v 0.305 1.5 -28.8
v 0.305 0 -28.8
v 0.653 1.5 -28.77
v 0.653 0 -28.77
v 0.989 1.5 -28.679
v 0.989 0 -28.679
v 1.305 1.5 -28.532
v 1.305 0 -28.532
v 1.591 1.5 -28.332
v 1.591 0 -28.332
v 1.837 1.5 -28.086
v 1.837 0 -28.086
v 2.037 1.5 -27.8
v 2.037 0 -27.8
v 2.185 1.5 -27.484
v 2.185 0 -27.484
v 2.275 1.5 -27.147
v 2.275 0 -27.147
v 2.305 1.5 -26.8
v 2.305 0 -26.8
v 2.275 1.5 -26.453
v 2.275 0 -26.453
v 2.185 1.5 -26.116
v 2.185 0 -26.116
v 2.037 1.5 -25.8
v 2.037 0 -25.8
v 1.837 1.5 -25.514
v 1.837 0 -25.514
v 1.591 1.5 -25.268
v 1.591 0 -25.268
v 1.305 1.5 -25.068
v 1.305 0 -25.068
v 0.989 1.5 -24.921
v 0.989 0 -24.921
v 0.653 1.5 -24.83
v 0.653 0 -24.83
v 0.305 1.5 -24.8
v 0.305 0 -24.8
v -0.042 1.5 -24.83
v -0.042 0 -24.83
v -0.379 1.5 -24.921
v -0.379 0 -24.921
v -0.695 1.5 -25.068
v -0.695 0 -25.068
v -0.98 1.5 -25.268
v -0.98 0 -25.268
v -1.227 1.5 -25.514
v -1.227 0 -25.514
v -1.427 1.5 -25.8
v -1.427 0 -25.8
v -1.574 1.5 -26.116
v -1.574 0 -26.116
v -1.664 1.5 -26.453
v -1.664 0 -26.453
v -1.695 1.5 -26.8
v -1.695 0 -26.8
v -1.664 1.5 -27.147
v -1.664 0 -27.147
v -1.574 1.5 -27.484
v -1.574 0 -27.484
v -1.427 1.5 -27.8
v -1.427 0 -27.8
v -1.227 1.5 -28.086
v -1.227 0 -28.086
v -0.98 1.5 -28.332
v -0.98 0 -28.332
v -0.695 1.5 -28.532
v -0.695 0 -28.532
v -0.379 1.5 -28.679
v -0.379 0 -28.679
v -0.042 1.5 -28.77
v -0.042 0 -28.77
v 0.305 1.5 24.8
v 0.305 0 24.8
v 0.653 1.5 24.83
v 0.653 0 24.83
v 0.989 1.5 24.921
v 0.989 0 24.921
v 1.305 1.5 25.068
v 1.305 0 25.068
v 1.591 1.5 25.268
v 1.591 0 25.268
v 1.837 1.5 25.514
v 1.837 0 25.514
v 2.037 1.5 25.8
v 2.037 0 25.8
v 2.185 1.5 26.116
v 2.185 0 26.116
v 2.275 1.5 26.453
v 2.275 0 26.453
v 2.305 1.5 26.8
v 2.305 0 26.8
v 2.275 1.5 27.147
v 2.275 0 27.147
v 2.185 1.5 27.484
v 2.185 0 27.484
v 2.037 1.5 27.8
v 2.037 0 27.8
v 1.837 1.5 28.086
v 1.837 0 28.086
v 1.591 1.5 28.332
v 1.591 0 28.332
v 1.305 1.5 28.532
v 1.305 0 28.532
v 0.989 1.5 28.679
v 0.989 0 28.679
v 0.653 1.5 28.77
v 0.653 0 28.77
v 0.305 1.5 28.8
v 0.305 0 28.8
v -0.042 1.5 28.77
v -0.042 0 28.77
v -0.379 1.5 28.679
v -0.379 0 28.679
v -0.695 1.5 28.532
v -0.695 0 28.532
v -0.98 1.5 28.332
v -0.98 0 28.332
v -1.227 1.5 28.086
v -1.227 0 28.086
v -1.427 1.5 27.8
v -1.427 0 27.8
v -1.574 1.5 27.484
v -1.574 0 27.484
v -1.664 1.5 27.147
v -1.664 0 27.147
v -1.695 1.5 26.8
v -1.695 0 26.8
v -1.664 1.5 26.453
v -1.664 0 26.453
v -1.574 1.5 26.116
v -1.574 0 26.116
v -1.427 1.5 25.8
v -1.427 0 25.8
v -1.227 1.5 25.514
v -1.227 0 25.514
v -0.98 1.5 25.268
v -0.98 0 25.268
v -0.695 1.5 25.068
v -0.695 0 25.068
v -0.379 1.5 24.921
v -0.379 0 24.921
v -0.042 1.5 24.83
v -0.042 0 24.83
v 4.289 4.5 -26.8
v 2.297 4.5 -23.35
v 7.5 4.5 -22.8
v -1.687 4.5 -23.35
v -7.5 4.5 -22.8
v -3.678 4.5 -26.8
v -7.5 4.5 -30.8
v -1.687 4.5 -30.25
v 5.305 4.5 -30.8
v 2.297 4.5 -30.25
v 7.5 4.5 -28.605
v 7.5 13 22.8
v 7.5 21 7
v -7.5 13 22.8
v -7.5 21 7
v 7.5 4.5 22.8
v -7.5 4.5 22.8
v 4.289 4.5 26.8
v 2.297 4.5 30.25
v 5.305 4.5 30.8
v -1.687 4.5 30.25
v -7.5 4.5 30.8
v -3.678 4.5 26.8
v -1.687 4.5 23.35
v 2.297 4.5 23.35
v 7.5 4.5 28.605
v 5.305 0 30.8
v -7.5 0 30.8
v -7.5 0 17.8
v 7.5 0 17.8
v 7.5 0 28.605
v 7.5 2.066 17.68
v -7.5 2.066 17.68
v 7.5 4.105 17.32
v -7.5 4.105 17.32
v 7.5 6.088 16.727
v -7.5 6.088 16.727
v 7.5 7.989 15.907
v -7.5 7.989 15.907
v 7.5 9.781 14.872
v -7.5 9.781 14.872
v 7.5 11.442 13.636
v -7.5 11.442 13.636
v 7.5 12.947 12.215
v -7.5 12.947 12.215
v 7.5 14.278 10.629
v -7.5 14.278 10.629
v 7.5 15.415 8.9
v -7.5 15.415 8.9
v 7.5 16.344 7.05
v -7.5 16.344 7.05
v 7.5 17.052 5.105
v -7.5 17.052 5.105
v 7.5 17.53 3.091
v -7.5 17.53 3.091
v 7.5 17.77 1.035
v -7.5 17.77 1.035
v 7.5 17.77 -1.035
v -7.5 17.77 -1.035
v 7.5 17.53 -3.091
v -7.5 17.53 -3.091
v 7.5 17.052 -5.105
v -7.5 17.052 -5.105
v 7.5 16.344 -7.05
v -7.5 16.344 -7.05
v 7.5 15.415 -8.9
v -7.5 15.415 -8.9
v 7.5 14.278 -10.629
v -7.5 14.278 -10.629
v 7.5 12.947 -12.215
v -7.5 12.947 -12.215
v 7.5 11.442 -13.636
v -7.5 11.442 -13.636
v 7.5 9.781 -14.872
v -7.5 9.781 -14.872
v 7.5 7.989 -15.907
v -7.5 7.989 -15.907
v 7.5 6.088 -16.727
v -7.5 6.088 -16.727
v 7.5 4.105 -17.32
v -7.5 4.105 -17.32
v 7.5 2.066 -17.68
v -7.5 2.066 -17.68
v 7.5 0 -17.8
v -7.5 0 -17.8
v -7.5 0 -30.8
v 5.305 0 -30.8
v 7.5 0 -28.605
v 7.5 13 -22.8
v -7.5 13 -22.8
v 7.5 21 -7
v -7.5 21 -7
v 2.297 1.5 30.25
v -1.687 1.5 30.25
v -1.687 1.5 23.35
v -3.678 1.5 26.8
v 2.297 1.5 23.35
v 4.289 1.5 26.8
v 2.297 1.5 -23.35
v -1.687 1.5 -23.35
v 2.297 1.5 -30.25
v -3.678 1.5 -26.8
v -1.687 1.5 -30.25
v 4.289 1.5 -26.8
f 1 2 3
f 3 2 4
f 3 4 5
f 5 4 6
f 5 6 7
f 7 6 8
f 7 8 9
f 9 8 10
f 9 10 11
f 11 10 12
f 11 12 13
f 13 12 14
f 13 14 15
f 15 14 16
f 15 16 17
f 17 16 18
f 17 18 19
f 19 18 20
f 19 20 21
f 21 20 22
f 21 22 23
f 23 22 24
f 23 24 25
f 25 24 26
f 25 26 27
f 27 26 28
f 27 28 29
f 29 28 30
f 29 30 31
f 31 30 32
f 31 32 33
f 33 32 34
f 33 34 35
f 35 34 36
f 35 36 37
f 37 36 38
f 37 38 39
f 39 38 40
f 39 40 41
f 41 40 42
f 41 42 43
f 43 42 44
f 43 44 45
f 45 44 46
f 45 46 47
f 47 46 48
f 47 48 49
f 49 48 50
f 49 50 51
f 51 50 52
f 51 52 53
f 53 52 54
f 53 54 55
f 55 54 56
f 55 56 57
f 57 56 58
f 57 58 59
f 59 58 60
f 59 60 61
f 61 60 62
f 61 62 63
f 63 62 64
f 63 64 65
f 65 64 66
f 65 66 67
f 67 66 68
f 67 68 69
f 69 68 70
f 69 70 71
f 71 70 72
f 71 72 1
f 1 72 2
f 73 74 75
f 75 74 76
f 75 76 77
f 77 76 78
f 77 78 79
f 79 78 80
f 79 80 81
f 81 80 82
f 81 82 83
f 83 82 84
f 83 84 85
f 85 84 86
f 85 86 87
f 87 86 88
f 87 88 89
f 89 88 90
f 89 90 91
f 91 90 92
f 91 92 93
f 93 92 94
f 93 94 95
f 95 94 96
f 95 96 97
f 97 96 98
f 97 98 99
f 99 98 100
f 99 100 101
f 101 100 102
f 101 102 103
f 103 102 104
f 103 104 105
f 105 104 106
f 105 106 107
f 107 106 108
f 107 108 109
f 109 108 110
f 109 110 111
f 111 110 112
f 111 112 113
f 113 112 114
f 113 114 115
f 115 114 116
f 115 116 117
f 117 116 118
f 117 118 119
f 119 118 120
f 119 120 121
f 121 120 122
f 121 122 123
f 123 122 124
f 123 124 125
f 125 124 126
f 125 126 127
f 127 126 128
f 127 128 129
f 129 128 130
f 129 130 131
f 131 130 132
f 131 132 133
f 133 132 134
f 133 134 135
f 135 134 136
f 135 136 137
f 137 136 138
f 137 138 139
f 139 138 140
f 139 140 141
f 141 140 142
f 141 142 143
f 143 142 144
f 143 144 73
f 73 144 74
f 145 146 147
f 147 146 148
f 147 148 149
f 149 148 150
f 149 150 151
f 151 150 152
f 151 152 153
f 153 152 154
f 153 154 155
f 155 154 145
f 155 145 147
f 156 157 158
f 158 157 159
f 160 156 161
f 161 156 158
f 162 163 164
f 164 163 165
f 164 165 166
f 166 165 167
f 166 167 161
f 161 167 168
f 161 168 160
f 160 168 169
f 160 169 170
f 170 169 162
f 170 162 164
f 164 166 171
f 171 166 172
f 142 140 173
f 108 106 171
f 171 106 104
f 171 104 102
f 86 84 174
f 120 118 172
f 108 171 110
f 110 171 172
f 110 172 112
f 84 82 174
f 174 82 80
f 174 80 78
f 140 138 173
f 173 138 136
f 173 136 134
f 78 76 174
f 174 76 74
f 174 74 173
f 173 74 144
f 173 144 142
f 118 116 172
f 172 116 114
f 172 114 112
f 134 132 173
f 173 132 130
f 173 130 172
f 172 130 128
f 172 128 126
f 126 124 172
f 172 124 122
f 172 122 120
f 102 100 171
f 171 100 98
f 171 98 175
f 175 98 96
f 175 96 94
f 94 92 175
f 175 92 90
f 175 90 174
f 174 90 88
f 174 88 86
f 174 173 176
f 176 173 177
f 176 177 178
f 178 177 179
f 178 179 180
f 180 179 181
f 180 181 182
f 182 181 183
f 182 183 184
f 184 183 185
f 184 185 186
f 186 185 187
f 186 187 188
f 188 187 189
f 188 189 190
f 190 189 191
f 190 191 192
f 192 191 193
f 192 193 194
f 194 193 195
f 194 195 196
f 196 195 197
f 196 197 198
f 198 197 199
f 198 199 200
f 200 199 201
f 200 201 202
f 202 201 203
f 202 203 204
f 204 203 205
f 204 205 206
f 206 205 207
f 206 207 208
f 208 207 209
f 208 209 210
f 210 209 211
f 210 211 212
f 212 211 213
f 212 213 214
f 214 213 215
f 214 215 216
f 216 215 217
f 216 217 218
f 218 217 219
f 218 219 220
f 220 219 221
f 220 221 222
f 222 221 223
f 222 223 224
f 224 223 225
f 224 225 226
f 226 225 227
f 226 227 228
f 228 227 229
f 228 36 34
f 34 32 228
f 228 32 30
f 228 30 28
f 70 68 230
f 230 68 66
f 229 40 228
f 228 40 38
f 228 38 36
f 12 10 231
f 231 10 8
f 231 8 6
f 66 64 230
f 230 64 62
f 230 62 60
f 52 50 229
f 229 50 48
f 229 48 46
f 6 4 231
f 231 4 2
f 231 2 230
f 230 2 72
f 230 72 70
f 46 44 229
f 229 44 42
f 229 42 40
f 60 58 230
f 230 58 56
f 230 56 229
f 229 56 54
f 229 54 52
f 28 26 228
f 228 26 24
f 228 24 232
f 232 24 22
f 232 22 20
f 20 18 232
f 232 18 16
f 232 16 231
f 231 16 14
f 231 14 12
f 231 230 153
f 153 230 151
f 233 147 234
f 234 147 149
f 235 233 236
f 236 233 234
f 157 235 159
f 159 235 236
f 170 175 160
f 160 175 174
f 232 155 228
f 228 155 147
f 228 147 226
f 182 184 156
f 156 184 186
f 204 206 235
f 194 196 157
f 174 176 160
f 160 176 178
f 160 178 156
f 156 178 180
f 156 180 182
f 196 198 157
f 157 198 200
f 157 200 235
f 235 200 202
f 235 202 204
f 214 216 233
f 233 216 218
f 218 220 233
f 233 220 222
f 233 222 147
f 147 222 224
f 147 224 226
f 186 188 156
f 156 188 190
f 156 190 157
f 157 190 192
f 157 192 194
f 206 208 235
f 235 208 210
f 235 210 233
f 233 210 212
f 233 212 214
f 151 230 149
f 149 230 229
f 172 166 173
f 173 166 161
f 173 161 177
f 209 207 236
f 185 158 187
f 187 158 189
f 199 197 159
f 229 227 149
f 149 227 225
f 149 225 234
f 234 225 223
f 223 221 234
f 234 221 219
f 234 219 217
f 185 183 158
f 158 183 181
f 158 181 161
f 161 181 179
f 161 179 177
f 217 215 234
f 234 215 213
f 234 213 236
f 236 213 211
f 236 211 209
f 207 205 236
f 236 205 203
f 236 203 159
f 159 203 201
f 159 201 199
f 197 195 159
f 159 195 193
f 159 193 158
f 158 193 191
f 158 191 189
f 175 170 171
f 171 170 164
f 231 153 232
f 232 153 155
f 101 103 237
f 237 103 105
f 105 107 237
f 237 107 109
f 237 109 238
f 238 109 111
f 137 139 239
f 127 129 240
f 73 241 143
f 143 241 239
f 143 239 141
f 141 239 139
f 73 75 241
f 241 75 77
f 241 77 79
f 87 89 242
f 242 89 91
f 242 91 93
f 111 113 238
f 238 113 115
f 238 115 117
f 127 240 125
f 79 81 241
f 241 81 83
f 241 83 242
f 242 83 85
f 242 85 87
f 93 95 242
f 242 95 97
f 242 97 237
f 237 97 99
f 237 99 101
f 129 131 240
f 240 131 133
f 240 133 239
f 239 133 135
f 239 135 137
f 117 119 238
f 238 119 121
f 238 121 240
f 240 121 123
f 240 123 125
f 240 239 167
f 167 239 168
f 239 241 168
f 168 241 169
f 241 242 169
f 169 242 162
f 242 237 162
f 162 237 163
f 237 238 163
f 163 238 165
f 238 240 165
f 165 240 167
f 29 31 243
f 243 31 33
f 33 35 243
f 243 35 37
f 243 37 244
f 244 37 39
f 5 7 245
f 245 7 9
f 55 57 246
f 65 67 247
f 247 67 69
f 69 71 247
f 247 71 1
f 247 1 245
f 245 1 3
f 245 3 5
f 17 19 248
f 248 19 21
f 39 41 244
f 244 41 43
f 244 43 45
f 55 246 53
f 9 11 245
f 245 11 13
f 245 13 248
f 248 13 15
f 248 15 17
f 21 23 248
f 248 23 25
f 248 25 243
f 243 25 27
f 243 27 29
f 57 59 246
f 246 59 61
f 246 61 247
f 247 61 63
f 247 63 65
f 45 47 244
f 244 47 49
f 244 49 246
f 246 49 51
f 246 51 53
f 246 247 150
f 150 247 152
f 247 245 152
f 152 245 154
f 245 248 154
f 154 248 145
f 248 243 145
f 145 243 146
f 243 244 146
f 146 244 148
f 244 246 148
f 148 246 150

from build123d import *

# Parameters (mm, degrees)
BOSS_EXTRUDE1_DEPTH           = 7.5
CUT_EXTRUDE1_DEPTH            = 39.024860289
CSK_FOR_M4_SFHCS1_D           = 4
CSK_FOR_M4_SFHCS1_DEPTH       = 25.5
CSK_FOR_M4_SFHCS1_CSINK_D     = 7.6
CSK_FOR_M4_SFHCS1_CSINK_ANGLE = 90
CSK_FOR_M4_SFHCS1_TIP         = 1.201721238
CUT_EXTRUDE2_DEPTH            = 3


with BuildPart() as part:
    # Sketch1 → Boss-Extrude1 (new, symmetric)
    with BuildSketch(Plane(origin=(0, 0, 0), x_dir=(0, 0, -1), z_dir=(1, 0, 0))):
        with BuildLine():
            Line((-22.8, 4.5), (-22.8, 13))
            Line((-22.8, 13), (-7, 21))
            Line((-7, 21), (7, 21))
            Line((7, 21), (22.8, 13))
            Line((22.8, 13), (22.8, 4.5))
            Line((22.8, 4.5), (30.8, 4.5))
            Line((30.8, 4.5), (30.8, 0))
            Line((30.8, 0), (17.8, 0))
            ThreePointArc((17.8, 0), (0, 17.8), (-17.8, 0))
            Line((-17.8, 0), (-30.8, 0))
            Line((-30.8, 0), (-30.8, 4.5))
            Line((-30.8, 4.5), (-22.8, 4.5))
        make_face()
    extrude(amount=BOSS_EXTRUDE1_DEPTH, both=True)

    # Sketch2 → Cut-Extrude1 (cut, through all)
    with BuildSketch(Plane.XZ):
        Polygon((5.305249497, -30.8), (7.5, -28.605249497), (7.5, -30.8), align=None)
        Polygon((5.305249497, 30.8), (7.5, 28.605249497), (7.5, 30.8), align=None)
    extrude(amount=-CUT_EXTRUDE1_DEPTH, mode=Mode.SUBTRACT)

    # CSK for M4 SFHCS1
    with Locations(Plane(origin=(-1355.265966012, -21, 695.683007616), x_dir=(0, 0, -1), z_dir=(0, -1, 0))):
        with Locations((668.883007616, 1355.571215509), (668.883007616, 1318.571215509), (722.483007616, 1318.571215509), (722.483007616, 1355.571215509)):
            CounterSinkHole(CSK_FOR_M4_SFHCS1_D / 2, CSK_FOR_M4_SFHCS1_CSINK_D / 2, depth=CSK_FOR_M4_SFHCS1_DEPTH, counter_sink_angle=CSK_FOR_M4_SFHCS1_CSINK_ANGLE)
            with Locations((0, 0, -(CSK_FOR_M4_SFHCS1_DEPTH + CSK_FOR_M4_SFHCS1_TIP / 2))):  # 118° drill point
                Cone(0, CSK_FOR_M4_SFHCS1_D / 2, CSK_FOR_M4_SFHCS1_TIP, mode=Mode.SUBTRACT)

    # Sketch5 → Cut-Extrude2 (cut)
    with BuildSketch(Plane(origin=(0, 4.5, 0), x_dir=(1, 0, 0), z_dir=(0, 1, 0))):
        Polygon((-3.67846736, -26.8), (-1.686608932, -30.25), (2.297107926, -30.25), (4.288966355, -26.8), (2.297107926, -23.35), (-1.686608932, -23.35), align=None)
        Polygon((-3.67846736, 26.8), (-1.686608932, 23.35), (2.297107926, 23.35), (4.288966355, 26.8), (2.297107926, 30.25), (-1.686608932, 30.25), align=None)
    extrude(amount=-CUT_EXTRUDE2_DEPTH, mode=Mode.SUBTRACT)


solid = part.part
